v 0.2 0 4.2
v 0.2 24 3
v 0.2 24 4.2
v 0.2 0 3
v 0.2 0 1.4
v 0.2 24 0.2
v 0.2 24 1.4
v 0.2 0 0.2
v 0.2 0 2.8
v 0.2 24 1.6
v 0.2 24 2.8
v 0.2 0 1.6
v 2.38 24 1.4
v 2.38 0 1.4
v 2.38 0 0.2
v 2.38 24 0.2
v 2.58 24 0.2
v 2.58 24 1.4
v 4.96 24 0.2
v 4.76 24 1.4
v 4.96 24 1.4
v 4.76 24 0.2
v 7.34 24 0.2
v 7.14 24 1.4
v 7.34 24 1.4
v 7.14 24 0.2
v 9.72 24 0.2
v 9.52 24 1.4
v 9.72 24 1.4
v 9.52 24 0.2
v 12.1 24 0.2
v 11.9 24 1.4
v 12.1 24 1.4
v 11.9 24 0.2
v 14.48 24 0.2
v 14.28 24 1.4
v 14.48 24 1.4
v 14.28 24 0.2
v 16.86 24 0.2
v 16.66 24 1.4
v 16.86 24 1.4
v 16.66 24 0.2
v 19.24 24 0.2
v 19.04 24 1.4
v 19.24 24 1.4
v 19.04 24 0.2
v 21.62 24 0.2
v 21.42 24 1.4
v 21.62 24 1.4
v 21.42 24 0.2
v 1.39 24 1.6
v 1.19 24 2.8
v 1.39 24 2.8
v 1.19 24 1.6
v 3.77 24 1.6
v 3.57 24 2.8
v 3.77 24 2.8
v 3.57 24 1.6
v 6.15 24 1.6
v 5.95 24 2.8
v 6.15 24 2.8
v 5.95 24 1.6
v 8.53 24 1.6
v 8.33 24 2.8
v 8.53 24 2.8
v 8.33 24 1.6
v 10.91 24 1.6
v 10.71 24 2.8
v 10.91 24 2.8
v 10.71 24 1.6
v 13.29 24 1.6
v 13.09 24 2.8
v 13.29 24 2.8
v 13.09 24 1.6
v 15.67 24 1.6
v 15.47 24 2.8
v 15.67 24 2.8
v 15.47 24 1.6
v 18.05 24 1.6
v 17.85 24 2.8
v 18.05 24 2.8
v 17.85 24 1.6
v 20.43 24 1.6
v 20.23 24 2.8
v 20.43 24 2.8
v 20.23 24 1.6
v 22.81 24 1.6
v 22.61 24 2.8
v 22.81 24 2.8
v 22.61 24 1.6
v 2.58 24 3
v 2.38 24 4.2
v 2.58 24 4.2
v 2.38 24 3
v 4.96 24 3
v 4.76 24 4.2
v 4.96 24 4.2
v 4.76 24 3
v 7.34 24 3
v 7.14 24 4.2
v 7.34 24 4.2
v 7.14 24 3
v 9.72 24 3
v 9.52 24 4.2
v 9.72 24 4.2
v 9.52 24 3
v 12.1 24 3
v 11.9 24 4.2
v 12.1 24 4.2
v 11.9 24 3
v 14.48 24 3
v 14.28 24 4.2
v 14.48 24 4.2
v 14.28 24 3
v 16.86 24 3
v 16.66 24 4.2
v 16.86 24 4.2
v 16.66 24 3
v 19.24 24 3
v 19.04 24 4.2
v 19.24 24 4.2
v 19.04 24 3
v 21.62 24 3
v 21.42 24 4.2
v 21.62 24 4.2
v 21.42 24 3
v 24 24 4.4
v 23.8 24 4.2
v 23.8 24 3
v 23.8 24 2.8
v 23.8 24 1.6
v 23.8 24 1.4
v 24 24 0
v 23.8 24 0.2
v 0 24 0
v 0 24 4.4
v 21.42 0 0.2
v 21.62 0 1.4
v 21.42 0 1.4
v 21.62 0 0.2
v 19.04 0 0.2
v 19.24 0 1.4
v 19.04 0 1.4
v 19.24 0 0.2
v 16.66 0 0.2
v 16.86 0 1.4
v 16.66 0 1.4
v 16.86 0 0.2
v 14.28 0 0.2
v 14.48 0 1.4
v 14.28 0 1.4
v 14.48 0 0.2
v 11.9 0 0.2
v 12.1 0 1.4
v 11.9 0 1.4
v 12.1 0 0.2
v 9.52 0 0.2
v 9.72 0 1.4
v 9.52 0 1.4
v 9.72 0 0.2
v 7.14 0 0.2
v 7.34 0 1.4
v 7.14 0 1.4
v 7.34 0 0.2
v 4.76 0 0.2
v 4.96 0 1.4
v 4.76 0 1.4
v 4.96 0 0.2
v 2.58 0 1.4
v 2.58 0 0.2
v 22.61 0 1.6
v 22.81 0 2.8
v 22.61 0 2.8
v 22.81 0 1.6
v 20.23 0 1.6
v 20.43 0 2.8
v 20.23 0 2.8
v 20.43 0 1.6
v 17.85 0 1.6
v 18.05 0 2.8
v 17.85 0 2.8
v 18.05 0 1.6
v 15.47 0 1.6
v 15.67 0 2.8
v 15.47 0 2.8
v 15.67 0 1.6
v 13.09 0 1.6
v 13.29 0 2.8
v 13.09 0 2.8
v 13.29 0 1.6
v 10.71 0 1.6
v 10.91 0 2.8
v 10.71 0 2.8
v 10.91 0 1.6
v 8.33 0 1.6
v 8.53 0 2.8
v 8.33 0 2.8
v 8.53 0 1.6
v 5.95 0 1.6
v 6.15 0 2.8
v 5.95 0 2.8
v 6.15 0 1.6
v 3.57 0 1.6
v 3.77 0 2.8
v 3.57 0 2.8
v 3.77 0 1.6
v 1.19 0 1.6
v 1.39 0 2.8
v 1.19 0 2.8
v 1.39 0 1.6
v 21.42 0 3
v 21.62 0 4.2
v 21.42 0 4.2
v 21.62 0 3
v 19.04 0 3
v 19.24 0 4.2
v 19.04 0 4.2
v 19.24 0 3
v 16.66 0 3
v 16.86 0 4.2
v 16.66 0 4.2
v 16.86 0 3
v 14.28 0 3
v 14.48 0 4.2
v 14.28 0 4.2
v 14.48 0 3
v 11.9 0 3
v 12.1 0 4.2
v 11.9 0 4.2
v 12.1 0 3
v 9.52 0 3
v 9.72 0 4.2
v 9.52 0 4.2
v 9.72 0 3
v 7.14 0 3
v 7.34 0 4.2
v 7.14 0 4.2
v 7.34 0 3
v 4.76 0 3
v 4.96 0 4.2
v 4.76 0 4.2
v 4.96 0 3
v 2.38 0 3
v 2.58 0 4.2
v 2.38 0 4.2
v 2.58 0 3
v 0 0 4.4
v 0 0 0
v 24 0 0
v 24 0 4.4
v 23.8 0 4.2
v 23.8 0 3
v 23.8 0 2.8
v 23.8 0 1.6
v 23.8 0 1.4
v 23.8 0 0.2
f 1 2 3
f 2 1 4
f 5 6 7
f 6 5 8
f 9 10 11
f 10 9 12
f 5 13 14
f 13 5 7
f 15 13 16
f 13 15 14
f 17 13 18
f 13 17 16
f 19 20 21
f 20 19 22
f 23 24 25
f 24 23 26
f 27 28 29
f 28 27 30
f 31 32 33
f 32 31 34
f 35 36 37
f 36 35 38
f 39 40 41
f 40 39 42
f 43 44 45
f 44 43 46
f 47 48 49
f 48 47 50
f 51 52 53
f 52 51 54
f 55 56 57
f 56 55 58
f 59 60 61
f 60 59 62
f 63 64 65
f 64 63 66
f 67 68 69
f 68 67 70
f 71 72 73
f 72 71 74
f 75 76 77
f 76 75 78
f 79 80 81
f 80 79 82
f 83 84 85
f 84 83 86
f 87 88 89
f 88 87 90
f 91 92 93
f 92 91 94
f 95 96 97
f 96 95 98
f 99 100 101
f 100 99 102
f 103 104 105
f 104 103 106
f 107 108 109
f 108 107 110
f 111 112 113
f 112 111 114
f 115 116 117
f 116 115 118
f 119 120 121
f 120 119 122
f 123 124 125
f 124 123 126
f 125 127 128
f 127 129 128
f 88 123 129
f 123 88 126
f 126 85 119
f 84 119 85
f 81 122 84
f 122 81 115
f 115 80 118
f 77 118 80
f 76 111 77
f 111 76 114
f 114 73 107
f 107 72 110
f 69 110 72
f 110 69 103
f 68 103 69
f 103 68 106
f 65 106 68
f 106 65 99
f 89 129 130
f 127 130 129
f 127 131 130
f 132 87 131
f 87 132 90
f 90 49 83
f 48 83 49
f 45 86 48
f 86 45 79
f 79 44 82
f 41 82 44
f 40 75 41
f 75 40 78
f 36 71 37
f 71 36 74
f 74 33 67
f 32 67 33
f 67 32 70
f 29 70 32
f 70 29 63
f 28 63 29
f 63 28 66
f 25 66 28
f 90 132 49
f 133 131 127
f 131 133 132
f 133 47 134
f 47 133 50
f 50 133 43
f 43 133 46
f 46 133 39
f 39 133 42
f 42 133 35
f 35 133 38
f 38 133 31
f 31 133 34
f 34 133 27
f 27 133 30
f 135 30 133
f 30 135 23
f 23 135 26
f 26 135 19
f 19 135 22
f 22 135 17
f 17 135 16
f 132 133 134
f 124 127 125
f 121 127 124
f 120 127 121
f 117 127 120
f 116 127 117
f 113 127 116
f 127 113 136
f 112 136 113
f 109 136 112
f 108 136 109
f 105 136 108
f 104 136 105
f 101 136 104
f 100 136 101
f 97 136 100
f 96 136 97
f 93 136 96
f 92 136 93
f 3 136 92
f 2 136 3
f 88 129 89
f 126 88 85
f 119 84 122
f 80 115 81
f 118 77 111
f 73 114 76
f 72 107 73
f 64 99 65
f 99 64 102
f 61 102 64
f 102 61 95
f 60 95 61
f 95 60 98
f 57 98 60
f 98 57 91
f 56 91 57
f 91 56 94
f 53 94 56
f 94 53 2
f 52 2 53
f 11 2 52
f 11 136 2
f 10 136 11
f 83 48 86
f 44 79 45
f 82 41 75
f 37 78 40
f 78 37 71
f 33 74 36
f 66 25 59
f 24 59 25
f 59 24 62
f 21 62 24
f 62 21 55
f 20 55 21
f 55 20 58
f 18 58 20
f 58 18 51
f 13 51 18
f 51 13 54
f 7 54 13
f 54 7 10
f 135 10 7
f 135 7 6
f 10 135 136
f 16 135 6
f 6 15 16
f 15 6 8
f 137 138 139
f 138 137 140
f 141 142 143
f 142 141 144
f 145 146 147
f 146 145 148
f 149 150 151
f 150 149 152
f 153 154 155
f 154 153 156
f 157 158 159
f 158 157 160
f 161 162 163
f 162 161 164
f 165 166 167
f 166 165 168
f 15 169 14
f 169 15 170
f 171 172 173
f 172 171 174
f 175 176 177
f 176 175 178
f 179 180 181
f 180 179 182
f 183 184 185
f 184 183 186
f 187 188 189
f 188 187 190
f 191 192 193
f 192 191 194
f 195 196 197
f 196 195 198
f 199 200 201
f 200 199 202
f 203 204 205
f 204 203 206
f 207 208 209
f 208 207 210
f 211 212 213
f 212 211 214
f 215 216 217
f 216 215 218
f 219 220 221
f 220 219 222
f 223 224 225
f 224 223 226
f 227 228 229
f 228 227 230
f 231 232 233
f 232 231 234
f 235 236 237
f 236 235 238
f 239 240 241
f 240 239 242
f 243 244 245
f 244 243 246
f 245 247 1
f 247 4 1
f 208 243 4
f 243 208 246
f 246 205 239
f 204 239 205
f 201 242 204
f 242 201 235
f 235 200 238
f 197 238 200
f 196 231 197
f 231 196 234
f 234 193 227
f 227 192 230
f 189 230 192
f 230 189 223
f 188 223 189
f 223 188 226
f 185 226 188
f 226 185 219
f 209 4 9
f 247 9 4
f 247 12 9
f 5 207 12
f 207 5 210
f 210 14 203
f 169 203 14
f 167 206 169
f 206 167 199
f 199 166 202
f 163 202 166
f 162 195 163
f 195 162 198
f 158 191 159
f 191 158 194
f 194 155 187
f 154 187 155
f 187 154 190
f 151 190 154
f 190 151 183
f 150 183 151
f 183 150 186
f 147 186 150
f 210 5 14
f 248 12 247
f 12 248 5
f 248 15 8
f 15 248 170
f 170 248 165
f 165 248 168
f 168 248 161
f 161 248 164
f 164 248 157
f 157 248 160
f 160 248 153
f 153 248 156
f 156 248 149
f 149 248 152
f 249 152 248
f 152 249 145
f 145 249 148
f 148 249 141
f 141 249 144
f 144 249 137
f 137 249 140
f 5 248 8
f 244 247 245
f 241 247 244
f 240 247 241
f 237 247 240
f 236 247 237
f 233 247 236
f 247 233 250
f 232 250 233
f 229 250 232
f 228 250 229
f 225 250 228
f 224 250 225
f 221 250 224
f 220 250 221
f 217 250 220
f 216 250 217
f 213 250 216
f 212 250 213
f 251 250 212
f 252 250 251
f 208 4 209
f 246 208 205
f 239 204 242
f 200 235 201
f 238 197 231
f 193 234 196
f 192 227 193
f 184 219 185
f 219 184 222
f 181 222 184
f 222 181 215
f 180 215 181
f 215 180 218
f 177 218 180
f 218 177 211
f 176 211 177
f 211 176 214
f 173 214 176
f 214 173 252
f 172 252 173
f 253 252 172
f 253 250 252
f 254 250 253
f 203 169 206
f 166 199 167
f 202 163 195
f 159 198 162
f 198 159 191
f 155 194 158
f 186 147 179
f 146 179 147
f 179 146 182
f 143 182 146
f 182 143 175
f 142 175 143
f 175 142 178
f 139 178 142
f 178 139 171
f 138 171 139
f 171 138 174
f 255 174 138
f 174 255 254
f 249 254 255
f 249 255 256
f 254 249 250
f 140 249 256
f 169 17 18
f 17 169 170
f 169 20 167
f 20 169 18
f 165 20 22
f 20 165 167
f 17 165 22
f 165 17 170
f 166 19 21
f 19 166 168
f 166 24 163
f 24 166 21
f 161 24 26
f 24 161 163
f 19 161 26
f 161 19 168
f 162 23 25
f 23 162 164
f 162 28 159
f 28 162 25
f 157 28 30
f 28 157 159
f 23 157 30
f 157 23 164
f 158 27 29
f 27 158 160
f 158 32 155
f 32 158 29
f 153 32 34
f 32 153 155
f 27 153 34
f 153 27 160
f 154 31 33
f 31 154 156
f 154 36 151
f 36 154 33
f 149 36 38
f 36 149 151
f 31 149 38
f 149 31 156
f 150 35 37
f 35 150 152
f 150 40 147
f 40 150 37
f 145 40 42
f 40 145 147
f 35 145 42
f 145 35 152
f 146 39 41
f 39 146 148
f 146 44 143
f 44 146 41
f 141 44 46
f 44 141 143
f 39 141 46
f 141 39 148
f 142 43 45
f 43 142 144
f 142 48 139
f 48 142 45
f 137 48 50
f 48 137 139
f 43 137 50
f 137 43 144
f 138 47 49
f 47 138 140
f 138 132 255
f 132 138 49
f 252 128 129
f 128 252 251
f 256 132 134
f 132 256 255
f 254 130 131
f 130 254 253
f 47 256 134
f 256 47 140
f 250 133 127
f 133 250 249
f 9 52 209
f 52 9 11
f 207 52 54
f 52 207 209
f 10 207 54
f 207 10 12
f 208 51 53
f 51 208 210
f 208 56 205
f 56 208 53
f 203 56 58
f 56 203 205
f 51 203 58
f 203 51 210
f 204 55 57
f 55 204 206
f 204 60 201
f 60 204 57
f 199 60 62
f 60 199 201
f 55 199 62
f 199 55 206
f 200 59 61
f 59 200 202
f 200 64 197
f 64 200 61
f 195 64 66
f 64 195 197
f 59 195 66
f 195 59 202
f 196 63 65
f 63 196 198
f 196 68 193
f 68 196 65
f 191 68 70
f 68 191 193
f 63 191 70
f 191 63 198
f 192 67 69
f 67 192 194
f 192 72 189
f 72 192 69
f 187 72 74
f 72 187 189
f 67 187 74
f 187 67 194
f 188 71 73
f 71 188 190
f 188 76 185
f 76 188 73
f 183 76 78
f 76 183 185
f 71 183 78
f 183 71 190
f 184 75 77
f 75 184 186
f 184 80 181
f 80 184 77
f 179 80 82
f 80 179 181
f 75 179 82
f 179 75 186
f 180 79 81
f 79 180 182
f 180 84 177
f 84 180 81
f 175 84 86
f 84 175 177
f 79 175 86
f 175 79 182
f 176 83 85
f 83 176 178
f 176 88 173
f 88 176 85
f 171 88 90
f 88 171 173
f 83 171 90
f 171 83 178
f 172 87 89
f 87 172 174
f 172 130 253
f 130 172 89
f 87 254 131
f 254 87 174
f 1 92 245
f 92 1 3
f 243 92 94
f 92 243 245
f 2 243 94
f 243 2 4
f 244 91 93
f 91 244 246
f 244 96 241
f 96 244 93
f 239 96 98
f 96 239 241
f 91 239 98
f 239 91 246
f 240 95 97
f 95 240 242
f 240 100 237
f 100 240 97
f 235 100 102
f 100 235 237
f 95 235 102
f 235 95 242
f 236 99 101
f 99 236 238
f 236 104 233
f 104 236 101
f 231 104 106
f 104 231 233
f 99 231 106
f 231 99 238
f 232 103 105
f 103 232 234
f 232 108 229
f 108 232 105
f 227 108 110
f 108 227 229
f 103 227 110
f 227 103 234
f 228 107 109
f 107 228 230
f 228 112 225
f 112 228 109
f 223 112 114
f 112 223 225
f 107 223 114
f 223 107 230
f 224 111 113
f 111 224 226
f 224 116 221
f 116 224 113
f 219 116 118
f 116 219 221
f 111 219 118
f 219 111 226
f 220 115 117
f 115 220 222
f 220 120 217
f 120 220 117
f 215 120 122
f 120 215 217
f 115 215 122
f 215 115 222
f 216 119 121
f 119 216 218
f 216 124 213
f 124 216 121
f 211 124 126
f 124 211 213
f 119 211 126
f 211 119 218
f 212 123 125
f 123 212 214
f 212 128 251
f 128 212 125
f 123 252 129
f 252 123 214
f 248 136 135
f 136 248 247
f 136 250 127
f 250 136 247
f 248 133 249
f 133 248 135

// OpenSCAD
module sponge(holeSize, sliceSize, strutSize, slabSize, xDim, yDim, n) {

  size = [xDim, yDim, slabSize * (n + 1) + sliceSize * n]; //x,y,z size

  union() {
    difference() {
      cube(size);

      for (z = [slabSize: sliceSize + slabSize: size[2] - slabSize]) {
        for (x = [0: holeSize + strutSize: size[0]]) {

          if (round((z - slabSize) / (sliceSize + slabSize)) % 2 == 0) {
            //if (x < size[0] - holeSize) {
            translate([x + strutSize, 0, z])
            cube([holeSize, size[1], sliceSize]);
            //}
          } else {
            translate([x - (holeSize / 2) + strutSize / 2, 0, z])
            cube([holeSize, size[1], sliceSize]);
          }

          echo(x = x, z = z);
        }
      }

    }
    cube([strutSize, size[1], size[2]]);
    translate([size[0] - strutSize, 0, 0])
    cube([strutSize, size[1], size[2]]);
  }
}

sponge (2.18, 1.2, .2, .2, 24, 24, 3);
